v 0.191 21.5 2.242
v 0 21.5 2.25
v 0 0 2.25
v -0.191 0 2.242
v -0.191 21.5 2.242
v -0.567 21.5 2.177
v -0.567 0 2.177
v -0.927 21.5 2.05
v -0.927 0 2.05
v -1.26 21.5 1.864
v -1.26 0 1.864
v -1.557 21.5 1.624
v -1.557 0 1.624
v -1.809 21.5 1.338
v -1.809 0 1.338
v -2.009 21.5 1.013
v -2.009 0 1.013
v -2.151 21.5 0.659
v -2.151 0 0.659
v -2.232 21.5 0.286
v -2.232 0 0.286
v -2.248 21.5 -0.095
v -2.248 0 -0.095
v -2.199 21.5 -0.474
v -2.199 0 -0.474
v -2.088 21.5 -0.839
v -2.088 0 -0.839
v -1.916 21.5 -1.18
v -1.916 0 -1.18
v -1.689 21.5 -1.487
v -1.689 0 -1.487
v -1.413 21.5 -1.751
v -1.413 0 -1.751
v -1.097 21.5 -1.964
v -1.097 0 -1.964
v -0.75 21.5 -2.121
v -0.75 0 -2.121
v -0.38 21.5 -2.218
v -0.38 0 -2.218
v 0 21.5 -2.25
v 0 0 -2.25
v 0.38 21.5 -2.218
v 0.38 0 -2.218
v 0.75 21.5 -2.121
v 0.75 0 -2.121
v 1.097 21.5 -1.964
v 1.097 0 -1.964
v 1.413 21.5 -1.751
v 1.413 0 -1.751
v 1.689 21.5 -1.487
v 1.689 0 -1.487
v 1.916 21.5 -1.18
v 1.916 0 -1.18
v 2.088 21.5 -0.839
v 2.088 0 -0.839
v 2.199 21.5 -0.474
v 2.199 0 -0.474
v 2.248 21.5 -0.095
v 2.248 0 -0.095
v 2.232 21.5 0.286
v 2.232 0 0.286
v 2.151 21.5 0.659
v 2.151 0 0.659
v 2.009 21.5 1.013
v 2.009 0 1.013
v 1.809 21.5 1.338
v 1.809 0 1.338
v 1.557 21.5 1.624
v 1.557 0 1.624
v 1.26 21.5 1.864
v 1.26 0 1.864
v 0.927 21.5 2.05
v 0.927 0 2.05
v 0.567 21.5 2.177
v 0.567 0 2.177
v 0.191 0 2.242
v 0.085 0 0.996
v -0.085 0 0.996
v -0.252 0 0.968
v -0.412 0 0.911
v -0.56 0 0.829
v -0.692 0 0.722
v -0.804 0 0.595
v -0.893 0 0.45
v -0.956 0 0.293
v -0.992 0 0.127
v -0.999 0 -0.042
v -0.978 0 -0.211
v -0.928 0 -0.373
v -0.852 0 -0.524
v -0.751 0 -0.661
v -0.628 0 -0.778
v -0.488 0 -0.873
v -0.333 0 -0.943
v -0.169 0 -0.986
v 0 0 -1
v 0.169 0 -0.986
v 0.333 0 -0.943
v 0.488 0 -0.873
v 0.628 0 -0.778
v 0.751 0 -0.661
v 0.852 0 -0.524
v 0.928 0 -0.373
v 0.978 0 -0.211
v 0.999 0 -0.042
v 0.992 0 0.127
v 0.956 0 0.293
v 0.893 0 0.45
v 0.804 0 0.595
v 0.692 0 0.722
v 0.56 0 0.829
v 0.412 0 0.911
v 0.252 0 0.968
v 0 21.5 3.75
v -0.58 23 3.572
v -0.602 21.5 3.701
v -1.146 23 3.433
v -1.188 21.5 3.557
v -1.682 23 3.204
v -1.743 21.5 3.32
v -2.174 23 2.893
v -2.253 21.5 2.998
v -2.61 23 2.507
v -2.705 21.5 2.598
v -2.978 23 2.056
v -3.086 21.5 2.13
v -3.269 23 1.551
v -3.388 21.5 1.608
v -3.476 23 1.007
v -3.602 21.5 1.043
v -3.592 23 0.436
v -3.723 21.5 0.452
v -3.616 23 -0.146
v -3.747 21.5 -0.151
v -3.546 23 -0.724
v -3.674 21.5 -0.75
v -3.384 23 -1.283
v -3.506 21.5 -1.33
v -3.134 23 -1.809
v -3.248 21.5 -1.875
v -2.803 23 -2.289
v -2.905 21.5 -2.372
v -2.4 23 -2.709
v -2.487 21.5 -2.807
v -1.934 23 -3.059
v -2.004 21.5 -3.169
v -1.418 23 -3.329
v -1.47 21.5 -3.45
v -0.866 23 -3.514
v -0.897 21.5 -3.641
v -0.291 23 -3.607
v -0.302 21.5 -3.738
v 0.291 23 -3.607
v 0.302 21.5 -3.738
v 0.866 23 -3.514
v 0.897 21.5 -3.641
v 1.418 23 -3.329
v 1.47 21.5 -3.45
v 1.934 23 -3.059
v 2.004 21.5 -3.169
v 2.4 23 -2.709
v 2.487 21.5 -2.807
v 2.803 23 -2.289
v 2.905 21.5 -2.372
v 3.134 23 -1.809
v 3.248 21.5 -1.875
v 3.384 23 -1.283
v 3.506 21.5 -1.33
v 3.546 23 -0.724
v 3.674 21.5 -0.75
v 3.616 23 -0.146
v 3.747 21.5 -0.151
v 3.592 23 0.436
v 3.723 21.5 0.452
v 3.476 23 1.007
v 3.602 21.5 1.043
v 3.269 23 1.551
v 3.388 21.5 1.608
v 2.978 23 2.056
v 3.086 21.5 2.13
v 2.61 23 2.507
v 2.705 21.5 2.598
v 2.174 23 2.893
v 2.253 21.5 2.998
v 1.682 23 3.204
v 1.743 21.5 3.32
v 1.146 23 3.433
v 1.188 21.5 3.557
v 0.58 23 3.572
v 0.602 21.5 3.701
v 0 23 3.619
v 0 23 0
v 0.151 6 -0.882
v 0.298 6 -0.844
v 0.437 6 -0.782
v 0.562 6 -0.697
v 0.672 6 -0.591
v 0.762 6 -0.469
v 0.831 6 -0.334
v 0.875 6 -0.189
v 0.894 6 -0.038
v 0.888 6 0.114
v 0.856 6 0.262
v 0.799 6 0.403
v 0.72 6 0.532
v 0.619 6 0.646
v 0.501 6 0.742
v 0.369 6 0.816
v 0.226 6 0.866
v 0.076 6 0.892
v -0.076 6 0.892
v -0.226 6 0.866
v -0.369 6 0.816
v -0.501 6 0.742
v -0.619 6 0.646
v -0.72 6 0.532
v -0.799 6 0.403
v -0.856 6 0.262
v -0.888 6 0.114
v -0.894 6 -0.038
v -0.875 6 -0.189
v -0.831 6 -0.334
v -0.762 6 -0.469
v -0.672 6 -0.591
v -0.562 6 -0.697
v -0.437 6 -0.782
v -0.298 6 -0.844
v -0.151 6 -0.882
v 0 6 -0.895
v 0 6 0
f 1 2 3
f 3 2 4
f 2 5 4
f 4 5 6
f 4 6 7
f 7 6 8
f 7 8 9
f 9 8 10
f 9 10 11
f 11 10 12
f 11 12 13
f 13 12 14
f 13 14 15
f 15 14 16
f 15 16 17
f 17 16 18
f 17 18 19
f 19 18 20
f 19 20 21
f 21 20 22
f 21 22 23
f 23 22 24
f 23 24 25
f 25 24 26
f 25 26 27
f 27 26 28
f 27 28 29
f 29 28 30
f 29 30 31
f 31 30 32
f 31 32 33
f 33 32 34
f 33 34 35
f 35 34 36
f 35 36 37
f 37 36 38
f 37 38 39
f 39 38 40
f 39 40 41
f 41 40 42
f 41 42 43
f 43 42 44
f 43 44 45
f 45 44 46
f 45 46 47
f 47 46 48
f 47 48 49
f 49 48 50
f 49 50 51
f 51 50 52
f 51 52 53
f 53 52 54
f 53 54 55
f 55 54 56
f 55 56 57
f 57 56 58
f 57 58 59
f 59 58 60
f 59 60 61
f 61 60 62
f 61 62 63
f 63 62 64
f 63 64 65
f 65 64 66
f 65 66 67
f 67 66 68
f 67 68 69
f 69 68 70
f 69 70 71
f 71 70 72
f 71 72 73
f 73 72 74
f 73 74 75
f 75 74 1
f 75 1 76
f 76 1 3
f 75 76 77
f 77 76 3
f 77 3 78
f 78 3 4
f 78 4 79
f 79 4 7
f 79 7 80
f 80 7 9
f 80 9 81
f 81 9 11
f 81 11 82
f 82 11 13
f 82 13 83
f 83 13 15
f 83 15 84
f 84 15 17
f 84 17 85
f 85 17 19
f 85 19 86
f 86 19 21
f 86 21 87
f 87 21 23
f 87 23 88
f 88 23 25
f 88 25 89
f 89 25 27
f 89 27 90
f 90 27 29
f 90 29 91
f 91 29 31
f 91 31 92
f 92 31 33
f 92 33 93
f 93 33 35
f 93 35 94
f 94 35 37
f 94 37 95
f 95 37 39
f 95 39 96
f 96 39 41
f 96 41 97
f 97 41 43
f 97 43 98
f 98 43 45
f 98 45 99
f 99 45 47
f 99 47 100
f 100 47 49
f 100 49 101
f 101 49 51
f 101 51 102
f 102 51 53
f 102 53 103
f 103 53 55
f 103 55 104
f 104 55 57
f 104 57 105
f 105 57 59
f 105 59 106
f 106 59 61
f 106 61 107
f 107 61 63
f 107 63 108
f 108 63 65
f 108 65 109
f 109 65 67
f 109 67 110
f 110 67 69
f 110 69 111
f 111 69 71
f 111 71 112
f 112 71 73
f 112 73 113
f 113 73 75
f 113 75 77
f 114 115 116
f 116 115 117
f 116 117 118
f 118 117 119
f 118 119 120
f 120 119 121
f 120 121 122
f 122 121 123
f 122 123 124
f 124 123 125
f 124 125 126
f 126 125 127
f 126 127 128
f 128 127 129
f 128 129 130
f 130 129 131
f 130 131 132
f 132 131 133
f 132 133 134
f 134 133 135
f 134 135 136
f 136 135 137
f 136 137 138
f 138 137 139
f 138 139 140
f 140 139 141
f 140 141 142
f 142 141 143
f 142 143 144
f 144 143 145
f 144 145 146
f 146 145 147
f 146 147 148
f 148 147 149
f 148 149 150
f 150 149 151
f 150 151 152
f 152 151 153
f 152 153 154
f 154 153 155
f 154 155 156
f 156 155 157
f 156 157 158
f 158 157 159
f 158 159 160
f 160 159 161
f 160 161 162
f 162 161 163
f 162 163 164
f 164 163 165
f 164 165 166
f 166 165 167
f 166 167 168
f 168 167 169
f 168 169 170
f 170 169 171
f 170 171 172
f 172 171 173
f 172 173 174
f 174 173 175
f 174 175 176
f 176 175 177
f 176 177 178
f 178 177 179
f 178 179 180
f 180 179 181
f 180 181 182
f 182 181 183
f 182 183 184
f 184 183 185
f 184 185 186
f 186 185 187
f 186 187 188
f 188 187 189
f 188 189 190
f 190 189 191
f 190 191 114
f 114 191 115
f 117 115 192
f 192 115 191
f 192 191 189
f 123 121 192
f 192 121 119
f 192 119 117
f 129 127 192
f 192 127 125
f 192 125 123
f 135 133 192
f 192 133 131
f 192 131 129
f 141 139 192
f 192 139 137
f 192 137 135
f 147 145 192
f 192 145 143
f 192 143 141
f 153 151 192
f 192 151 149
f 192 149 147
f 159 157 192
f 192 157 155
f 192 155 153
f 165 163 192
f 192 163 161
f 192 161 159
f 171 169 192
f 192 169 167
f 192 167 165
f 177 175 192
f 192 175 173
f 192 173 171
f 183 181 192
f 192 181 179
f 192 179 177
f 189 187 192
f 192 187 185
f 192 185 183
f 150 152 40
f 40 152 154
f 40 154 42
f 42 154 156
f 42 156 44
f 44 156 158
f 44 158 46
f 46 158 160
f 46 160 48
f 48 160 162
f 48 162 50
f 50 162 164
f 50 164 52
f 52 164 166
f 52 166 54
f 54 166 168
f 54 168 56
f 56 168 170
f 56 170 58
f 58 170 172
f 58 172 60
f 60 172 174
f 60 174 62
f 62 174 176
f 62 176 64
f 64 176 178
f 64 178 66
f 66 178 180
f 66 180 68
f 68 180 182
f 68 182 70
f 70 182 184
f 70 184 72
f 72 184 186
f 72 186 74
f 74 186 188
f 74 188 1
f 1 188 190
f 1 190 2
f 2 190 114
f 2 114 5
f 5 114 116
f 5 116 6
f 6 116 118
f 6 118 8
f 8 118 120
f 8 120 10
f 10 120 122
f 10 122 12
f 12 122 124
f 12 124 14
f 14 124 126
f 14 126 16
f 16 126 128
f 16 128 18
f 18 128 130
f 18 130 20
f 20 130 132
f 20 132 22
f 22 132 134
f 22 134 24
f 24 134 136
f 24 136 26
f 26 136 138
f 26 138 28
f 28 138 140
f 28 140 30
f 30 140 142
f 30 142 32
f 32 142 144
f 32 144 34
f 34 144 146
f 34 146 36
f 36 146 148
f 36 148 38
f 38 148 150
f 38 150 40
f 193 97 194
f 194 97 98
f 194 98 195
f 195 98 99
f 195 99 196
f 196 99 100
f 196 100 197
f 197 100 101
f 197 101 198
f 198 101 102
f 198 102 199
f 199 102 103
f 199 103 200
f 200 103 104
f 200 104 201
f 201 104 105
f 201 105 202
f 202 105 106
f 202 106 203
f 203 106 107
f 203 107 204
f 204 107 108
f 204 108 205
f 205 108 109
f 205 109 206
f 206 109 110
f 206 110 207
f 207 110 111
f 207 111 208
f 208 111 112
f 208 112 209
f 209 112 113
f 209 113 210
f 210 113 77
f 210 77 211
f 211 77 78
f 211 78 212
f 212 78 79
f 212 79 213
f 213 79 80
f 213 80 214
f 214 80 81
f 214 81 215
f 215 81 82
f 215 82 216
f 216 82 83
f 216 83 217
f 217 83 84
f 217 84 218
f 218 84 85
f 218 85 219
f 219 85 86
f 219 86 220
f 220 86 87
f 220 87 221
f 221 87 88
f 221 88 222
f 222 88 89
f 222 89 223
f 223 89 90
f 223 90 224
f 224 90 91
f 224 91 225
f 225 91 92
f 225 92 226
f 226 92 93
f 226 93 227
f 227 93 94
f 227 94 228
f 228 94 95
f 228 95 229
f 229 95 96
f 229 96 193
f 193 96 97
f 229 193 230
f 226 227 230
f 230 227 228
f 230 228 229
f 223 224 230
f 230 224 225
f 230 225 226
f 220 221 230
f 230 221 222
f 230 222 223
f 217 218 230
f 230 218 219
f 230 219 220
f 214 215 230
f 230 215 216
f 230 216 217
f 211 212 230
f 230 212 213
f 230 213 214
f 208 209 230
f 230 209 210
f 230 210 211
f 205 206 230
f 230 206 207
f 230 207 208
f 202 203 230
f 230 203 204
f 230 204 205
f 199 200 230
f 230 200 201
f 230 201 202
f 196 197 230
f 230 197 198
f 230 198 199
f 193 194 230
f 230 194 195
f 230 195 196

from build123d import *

# Parameters (mm, degrees)
SKETCH1_R           = 2.25
BOSS_EXTRUDE1_DEPTH = 21.5
SKETCH2_R           = 3.75
BOSS_EXTRUDE2_DEPTH = 1.5
BOSS_EXTRUDE2_TAPER = 5
SKETCH3_R           = 1
CUT_EXTRUDE1_DEPTH  = 6
CUT_EXTRUDE1_DRAFT  = -1


with BuildPart() as part:
    # Sketch1 → Boss-Extrude1 (new body)
    with BuildSketch(Plane(origin=(0, 0, 0), x_dir=(1, 0, 0), z_dir=(0, 1, 0))):
        with Locations(Location((0, 0, 0), (0, 0, 270))):
            Circle(SKETCH1_R)
    extrude(amount=BOSS_EXTRUDE1_DEPTH)

    # Sketch2 → Boss-Extrude2 (add)
    with BuildSketch(Plane(origin=(0, 21.5, 0), x_dir=(1, 0, 0), z_dir=(0, 1, 0))):
        Circle(SKETCH2_R)
    extrude(amount=BOSS_EXTRUDE2_DEPTH, taper=BOSS_EXTRUDE2_TAPER)


with BuildPart() as cut_extrude1_tool:
    # Sketch3 → Cut-Extrude1 (with draft: the straight prism first)
    with BuildSketch(Plane.XZ):
        Circle(SKETCH3_R)
    extrude(amount=-CUT_EXTRUDE1_DEPTH)
    # Cut-Extrude1: the draft: its side faces are tilted about the plane it starts from
    cut_extrude1_sides = [cut_extrude1_tool.faces().sort_by_distance(p)[0] for p in [
        (-1, 3, 0),
    ]]
    draft(cut_extrude1_sides, Plane.XZ, CUT_EXTRUDE1_DRAFT)


with BuildPart() as part_1:
    add(part.part)

    # Cut-Extrude1: cut by cut_extrude1_tool
    add(cut_extrude1_tool.part, mode=Mode.SUBTRACT)


solid = part_1.part
